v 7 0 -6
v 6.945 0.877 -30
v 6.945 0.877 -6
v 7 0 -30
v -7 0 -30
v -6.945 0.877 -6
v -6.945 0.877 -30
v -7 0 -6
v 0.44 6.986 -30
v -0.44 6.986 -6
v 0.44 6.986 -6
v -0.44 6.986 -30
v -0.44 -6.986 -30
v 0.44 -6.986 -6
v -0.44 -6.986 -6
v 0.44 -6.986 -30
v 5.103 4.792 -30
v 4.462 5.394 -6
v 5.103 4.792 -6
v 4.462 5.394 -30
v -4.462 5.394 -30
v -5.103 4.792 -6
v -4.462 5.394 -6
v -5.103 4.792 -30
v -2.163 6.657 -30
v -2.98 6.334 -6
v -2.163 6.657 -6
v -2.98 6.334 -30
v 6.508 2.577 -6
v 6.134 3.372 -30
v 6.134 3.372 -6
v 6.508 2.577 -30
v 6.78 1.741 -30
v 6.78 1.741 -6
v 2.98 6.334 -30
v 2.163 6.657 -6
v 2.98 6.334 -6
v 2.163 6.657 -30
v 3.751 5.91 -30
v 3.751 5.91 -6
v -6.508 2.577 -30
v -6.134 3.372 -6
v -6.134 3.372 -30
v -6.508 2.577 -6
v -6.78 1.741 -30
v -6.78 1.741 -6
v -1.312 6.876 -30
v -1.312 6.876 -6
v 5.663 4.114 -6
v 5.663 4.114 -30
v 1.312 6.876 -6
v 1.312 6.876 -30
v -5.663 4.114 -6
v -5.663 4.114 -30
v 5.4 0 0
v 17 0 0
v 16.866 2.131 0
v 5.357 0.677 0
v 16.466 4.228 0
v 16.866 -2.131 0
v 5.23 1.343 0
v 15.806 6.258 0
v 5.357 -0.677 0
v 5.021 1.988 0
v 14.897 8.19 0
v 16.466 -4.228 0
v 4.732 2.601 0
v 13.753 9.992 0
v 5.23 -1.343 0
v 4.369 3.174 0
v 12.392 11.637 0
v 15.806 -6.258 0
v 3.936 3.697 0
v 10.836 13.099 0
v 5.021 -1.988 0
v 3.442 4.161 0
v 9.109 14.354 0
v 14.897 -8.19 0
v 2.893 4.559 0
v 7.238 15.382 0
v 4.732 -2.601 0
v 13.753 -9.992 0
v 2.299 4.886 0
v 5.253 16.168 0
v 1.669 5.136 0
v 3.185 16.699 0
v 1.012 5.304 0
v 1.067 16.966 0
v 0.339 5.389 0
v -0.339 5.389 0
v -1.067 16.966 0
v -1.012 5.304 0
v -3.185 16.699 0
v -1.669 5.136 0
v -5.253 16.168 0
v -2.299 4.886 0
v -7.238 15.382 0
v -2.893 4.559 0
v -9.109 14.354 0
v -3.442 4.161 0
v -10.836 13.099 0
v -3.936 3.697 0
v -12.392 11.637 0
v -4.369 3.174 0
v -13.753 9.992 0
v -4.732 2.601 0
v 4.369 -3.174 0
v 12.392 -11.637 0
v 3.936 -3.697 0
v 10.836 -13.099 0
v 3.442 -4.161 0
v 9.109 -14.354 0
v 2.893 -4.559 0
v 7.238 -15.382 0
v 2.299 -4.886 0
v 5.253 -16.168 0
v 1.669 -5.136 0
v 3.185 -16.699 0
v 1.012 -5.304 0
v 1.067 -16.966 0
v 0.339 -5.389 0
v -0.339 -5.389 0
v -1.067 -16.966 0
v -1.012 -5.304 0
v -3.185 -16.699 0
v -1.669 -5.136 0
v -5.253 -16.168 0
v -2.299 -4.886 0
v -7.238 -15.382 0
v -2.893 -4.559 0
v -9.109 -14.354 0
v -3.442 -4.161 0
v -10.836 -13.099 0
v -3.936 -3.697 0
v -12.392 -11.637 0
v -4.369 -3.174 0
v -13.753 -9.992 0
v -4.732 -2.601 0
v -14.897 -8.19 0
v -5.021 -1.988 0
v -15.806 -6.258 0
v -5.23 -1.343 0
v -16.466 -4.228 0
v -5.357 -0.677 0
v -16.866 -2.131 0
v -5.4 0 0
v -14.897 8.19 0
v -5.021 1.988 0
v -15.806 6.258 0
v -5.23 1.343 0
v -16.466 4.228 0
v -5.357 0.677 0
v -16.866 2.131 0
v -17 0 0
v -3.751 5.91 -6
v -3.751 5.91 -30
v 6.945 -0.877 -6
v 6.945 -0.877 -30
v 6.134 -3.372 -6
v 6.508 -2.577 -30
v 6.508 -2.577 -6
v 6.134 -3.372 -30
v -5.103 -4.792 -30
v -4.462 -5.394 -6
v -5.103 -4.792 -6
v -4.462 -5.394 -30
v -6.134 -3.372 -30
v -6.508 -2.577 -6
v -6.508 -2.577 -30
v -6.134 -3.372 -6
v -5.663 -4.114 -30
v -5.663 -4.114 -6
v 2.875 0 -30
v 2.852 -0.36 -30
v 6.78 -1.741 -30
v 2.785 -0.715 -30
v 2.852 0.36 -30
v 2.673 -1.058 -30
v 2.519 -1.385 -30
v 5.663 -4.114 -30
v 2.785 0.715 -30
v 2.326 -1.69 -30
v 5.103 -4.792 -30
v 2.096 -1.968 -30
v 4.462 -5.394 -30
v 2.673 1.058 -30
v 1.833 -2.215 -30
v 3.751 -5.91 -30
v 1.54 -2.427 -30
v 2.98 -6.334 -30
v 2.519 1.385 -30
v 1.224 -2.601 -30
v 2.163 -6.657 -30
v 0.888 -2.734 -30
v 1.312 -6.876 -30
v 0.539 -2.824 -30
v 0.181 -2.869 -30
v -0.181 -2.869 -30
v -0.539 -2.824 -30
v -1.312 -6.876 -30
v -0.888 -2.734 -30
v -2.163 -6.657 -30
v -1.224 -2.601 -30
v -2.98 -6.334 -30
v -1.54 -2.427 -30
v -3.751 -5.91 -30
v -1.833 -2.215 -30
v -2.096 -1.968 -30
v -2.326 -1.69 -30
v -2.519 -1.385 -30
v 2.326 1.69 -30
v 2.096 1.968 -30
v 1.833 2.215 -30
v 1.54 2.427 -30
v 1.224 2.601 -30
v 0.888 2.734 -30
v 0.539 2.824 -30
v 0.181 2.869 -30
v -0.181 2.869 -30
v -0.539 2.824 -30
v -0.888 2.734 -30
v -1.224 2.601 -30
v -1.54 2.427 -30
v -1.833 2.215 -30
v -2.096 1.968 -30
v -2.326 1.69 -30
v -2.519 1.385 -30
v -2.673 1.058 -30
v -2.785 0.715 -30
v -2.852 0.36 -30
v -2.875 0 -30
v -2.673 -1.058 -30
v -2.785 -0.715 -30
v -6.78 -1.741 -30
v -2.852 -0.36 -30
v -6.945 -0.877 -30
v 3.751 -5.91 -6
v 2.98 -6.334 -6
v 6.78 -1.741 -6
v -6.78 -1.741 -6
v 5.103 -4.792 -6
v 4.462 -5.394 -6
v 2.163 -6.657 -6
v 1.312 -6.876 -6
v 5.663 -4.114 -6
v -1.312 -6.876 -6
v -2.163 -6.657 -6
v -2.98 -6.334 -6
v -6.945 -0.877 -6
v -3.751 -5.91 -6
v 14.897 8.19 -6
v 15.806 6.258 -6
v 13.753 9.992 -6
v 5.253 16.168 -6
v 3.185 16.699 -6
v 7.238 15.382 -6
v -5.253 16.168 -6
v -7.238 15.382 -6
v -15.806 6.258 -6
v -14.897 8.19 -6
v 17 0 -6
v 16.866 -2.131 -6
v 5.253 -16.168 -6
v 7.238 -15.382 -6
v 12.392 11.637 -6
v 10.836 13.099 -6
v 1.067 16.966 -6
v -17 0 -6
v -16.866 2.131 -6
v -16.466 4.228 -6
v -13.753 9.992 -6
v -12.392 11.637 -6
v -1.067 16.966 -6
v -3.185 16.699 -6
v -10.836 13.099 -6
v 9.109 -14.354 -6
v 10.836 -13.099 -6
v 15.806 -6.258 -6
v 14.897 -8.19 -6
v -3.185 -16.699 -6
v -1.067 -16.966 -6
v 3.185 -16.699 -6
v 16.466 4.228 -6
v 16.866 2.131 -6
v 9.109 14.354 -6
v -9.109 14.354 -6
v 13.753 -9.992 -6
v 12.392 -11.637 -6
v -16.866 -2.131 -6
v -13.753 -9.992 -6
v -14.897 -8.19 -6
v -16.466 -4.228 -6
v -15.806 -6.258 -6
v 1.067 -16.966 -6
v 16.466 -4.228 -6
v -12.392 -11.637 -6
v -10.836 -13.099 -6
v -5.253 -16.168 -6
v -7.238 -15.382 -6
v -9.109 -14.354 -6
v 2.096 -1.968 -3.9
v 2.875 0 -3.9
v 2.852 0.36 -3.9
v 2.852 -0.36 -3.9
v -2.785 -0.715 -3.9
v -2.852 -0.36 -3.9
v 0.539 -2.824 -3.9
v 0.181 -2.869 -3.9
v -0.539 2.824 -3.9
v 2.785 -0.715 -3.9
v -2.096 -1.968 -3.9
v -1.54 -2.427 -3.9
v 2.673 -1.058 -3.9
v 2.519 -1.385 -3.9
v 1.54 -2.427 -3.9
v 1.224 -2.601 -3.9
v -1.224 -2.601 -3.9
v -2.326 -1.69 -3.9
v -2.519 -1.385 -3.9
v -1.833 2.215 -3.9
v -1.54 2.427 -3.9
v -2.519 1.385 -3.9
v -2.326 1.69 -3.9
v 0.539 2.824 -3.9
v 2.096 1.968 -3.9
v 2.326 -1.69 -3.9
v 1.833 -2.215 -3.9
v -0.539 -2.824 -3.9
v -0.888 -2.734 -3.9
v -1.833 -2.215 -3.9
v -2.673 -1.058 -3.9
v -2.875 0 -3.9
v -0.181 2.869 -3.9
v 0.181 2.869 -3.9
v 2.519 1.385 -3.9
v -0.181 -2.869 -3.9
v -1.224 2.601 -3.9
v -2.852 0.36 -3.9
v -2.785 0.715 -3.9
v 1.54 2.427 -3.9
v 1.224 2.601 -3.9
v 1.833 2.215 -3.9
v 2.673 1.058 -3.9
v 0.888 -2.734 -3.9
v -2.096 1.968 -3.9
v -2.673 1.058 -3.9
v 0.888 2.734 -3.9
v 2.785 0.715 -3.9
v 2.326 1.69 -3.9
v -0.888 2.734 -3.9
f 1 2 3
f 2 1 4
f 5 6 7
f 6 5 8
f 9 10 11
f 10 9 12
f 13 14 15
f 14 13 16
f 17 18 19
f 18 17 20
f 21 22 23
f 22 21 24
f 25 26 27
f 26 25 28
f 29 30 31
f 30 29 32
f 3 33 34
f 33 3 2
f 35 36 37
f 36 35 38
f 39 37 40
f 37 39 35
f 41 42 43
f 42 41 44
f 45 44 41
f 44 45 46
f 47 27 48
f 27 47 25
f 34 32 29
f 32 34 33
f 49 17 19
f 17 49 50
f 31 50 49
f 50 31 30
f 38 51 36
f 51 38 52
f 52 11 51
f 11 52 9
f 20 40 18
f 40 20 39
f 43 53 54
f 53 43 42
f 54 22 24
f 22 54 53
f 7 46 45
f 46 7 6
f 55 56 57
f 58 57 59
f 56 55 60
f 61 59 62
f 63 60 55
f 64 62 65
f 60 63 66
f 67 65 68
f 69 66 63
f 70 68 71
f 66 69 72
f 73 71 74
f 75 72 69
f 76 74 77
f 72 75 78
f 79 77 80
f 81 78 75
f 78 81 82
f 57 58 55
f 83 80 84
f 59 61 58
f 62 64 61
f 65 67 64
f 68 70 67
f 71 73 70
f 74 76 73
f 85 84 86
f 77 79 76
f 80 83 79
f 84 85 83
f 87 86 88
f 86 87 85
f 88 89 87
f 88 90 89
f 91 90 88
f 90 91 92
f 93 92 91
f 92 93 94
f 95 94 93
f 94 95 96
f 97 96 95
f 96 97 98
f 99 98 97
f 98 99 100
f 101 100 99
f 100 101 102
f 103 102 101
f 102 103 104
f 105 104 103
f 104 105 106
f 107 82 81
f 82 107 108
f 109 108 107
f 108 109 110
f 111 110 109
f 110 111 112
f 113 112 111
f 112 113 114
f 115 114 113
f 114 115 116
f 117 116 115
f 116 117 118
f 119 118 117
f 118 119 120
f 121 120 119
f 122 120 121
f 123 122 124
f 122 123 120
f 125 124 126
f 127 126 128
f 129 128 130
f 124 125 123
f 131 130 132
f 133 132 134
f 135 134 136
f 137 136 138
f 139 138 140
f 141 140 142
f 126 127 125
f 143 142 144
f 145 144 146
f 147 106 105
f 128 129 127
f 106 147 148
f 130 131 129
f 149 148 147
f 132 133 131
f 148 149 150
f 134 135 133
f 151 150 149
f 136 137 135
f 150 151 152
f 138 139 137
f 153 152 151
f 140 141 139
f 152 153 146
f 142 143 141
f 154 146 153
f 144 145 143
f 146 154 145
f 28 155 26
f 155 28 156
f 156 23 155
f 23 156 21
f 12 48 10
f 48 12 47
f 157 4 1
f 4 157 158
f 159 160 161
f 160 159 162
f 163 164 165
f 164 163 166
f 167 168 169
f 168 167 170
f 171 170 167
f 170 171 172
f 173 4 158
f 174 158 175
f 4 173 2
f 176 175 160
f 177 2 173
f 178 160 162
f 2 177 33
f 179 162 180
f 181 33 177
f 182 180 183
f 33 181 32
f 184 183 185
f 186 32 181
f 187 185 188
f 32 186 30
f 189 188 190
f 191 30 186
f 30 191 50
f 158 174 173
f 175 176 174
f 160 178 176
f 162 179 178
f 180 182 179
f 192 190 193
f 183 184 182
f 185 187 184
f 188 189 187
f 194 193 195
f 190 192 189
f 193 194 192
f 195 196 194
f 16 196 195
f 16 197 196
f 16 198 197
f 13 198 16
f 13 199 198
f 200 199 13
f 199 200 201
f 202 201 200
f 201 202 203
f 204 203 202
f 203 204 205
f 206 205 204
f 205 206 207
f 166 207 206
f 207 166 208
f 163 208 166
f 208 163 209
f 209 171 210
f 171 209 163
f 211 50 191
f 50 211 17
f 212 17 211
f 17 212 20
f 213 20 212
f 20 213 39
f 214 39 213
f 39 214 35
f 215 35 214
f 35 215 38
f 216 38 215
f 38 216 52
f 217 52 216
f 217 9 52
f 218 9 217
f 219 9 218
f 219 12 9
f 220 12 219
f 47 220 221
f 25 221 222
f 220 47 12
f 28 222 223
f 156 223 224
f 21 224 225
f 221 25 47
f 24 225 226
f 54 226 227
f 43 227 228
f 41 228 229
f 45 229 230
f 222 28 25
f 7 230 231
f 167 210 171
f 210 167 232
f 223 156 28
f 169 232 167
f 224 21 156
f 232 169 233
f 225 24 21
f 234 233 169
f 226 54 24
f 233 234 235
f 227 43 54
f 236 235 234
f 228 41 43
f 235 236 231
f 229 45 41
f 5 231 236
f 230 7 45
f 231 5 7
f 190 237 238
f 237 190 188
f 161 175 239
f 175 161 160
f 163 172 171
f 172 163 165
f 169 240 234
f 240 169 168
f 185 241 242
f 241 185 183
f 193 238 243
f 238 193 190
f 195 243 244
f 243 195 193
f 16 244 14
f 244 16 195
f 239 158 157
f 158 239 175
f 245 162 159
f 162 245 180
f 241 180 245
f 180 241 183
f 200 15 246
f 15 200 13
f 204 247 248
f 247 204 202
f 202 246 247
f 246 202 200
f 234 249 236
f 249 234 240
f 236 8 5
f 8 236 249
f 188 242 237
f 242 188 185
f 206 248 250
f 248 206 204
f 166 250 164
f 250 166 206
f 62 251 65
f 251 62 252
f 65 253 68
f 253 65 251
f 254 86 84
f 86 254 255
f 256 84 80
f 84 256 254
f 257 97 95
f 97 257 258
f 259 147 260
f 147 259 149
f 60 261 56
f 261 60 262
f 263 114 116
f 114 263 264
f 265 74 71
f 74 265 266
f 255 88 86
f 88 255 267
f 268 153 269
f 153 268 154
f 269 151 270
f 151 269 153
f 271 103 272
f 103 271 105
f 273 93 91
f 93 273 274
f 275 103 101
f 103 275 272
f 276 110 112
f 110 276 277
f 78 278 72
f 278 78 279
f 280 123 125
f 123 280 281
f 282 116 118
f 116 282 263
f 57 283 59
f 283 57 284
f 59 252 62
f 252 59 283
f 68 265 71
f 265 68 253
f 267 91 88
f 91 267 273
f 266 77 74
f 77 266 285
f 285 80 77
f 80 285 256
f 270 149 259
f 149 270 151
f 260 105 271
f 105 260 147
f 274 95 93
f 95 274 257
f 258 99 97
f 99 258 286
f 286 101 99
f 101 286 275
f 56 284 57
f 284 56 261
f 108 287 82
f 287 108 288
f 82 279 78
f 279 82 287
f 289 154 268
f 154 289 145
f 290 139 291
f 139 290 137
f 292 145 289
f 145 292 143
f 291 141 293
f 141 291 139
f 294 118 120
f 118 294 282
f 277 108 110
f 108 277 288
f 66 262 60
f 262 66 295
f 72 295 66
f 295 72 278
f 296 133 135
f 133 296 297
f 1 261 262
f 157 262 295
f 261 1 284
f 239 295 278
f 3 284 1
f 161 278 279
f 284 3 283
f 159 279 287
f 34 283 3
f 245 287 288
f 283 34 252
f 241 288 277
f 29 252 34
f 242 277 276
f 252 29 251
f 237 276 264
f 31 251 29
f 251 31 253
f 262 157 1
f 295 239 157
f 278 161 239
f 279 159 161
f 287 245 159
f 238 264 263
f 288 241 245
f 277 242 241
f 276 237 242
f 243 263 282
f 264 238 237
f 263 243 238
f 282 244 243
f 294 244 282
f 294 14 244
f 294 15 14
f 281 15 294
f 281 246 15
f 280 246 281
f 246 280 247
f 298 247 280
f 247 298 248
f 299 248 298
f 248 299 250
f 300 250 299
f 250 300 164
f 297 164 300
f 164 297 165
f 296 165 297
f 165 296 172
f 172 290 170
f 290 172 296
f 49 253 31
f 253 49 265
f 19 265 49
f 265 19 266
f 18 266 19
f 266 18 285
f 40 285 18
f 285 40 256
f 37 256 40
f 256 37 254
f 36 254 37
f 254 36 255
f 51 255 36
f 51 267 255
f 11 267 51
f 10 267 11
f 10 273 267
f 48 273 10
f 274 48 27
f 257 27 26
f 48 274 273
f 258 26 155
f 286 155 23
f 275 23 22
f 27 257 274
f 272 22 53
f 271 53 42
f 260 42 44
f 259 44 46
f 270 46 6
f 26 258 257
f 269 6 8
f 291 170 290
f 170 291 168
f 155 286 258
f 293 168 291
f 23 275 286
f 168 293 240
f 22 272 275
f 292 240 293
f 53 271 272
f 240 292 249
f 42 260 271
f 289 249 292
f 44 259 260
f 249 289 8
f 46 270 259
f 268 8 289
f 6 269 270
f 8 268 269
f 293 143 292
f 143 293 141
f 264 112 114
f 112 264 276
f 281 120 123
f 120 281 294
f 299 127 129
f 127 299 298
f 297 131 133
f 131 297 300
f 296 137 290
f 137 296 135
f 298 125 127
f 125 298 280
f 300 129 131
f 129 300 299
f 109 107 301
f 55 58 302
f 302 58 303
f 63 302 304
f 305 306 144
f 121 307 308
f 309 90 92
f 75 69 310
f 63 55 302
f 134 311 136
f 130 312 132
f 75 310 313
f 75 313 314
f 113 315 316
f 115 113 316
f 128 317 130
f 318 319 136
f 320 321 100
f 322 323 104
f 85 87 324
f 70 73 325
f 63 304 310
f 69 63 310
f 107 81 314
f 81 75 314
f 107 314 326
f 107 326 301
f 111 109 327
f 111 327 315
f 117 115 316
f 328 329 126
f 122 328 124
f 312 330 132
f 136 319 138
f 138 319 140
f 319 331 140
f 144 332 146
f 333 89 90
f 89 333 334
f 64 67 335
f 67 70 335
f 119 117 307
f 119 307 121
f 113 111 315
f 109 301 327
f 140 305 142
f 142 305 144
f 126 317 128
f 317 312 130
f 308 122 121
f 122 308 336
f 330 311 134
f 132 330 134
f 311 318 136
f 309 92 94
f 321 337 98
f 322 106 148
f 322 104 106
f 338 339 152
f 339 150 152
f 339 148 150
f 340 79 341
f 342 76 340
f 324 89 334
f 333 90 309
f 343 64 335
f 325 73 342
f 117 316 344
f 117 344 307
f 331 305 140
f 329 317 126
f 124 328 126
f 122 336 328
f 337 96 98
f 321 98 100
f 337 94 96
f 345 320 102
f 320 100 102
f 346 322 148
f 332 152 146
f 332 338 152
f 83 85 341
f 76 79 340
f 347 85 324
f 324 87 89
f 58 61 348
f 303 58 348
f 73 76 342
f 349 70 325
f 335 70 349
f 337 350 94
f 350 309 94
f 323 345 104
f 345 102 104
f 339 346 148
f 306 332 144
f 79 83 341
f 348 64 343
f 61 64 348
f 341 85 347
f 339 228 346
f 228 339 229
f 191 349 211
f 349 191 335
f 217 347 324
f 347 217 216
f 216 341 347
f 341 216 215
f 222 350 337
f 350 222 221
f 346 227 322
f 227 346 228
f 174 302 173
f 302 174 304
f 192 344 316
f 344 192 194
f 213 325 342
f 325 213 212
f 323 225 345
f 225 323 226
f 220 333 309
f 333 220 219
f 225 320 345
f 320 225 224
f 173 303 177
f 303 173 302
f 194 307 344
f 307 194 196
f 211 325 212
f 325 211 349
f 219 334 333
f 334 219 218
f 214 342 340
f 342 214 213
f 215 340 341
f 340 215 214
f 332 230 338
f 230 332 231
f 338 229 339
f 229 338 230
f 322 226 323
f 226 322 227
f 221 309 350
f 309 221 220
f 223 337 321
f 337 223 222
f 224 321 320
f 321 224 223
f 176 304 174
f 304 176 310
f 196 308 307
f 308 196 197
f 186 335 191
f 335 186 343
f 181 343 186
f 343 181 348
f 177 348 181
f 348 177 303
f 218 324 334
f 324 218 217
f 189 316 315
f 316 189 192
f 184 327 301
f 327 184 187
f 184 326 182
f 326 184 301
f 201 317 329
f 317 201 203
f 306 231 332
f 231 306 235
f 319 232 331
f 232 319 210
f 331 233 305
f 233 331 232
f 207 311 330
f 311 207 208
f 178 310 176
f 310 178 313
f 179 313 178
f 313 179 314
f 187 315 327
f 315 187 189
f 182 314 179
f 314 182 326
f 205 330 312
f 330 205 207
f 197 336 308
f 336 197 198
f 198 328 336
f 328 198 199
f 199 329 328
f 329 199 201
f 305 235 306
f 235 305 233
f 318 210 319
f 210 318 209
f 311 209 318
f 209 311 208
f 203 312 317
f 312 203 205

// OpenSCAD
$fn = 50;


difference() {
	union() {
		translate(v = [0, 0, -30.0000000000]) {
			cylinder(h = 30, r = 7.0000000000);
		}
		translate(v = [0, 0, -6.0000000000]) {
			cylinder(h = 6, r = 17.0000000000);
		}
	}
	union() {
		translate(v = [0, 0, 0]) {
			rotate(a = [0, 0, 0]) {
				difference() {
					union() {
						#translate(v = [0, 0, -30.0000000000]) {
							cylinder(h = 30, r = 2.6000000000);
						}
						#translate(v = [0, 0, -3.9000000000]) {
							cylinder(h = 3.9000000000, r = 7.0000000000, r1 = 2.8750000000, r2 = 5.4000000000);
						}
						#translate(v = [0, 0, -30.0000000000]) {
							cylinder(h = 30, r = 2.8750000000);
						}
						#translate(v = [0, 0, -30.0000000000]) {
							cylinder(h = 30, r = 2.6000000000);
						}
					}
					union();
				}
			}
		}
	}
}
